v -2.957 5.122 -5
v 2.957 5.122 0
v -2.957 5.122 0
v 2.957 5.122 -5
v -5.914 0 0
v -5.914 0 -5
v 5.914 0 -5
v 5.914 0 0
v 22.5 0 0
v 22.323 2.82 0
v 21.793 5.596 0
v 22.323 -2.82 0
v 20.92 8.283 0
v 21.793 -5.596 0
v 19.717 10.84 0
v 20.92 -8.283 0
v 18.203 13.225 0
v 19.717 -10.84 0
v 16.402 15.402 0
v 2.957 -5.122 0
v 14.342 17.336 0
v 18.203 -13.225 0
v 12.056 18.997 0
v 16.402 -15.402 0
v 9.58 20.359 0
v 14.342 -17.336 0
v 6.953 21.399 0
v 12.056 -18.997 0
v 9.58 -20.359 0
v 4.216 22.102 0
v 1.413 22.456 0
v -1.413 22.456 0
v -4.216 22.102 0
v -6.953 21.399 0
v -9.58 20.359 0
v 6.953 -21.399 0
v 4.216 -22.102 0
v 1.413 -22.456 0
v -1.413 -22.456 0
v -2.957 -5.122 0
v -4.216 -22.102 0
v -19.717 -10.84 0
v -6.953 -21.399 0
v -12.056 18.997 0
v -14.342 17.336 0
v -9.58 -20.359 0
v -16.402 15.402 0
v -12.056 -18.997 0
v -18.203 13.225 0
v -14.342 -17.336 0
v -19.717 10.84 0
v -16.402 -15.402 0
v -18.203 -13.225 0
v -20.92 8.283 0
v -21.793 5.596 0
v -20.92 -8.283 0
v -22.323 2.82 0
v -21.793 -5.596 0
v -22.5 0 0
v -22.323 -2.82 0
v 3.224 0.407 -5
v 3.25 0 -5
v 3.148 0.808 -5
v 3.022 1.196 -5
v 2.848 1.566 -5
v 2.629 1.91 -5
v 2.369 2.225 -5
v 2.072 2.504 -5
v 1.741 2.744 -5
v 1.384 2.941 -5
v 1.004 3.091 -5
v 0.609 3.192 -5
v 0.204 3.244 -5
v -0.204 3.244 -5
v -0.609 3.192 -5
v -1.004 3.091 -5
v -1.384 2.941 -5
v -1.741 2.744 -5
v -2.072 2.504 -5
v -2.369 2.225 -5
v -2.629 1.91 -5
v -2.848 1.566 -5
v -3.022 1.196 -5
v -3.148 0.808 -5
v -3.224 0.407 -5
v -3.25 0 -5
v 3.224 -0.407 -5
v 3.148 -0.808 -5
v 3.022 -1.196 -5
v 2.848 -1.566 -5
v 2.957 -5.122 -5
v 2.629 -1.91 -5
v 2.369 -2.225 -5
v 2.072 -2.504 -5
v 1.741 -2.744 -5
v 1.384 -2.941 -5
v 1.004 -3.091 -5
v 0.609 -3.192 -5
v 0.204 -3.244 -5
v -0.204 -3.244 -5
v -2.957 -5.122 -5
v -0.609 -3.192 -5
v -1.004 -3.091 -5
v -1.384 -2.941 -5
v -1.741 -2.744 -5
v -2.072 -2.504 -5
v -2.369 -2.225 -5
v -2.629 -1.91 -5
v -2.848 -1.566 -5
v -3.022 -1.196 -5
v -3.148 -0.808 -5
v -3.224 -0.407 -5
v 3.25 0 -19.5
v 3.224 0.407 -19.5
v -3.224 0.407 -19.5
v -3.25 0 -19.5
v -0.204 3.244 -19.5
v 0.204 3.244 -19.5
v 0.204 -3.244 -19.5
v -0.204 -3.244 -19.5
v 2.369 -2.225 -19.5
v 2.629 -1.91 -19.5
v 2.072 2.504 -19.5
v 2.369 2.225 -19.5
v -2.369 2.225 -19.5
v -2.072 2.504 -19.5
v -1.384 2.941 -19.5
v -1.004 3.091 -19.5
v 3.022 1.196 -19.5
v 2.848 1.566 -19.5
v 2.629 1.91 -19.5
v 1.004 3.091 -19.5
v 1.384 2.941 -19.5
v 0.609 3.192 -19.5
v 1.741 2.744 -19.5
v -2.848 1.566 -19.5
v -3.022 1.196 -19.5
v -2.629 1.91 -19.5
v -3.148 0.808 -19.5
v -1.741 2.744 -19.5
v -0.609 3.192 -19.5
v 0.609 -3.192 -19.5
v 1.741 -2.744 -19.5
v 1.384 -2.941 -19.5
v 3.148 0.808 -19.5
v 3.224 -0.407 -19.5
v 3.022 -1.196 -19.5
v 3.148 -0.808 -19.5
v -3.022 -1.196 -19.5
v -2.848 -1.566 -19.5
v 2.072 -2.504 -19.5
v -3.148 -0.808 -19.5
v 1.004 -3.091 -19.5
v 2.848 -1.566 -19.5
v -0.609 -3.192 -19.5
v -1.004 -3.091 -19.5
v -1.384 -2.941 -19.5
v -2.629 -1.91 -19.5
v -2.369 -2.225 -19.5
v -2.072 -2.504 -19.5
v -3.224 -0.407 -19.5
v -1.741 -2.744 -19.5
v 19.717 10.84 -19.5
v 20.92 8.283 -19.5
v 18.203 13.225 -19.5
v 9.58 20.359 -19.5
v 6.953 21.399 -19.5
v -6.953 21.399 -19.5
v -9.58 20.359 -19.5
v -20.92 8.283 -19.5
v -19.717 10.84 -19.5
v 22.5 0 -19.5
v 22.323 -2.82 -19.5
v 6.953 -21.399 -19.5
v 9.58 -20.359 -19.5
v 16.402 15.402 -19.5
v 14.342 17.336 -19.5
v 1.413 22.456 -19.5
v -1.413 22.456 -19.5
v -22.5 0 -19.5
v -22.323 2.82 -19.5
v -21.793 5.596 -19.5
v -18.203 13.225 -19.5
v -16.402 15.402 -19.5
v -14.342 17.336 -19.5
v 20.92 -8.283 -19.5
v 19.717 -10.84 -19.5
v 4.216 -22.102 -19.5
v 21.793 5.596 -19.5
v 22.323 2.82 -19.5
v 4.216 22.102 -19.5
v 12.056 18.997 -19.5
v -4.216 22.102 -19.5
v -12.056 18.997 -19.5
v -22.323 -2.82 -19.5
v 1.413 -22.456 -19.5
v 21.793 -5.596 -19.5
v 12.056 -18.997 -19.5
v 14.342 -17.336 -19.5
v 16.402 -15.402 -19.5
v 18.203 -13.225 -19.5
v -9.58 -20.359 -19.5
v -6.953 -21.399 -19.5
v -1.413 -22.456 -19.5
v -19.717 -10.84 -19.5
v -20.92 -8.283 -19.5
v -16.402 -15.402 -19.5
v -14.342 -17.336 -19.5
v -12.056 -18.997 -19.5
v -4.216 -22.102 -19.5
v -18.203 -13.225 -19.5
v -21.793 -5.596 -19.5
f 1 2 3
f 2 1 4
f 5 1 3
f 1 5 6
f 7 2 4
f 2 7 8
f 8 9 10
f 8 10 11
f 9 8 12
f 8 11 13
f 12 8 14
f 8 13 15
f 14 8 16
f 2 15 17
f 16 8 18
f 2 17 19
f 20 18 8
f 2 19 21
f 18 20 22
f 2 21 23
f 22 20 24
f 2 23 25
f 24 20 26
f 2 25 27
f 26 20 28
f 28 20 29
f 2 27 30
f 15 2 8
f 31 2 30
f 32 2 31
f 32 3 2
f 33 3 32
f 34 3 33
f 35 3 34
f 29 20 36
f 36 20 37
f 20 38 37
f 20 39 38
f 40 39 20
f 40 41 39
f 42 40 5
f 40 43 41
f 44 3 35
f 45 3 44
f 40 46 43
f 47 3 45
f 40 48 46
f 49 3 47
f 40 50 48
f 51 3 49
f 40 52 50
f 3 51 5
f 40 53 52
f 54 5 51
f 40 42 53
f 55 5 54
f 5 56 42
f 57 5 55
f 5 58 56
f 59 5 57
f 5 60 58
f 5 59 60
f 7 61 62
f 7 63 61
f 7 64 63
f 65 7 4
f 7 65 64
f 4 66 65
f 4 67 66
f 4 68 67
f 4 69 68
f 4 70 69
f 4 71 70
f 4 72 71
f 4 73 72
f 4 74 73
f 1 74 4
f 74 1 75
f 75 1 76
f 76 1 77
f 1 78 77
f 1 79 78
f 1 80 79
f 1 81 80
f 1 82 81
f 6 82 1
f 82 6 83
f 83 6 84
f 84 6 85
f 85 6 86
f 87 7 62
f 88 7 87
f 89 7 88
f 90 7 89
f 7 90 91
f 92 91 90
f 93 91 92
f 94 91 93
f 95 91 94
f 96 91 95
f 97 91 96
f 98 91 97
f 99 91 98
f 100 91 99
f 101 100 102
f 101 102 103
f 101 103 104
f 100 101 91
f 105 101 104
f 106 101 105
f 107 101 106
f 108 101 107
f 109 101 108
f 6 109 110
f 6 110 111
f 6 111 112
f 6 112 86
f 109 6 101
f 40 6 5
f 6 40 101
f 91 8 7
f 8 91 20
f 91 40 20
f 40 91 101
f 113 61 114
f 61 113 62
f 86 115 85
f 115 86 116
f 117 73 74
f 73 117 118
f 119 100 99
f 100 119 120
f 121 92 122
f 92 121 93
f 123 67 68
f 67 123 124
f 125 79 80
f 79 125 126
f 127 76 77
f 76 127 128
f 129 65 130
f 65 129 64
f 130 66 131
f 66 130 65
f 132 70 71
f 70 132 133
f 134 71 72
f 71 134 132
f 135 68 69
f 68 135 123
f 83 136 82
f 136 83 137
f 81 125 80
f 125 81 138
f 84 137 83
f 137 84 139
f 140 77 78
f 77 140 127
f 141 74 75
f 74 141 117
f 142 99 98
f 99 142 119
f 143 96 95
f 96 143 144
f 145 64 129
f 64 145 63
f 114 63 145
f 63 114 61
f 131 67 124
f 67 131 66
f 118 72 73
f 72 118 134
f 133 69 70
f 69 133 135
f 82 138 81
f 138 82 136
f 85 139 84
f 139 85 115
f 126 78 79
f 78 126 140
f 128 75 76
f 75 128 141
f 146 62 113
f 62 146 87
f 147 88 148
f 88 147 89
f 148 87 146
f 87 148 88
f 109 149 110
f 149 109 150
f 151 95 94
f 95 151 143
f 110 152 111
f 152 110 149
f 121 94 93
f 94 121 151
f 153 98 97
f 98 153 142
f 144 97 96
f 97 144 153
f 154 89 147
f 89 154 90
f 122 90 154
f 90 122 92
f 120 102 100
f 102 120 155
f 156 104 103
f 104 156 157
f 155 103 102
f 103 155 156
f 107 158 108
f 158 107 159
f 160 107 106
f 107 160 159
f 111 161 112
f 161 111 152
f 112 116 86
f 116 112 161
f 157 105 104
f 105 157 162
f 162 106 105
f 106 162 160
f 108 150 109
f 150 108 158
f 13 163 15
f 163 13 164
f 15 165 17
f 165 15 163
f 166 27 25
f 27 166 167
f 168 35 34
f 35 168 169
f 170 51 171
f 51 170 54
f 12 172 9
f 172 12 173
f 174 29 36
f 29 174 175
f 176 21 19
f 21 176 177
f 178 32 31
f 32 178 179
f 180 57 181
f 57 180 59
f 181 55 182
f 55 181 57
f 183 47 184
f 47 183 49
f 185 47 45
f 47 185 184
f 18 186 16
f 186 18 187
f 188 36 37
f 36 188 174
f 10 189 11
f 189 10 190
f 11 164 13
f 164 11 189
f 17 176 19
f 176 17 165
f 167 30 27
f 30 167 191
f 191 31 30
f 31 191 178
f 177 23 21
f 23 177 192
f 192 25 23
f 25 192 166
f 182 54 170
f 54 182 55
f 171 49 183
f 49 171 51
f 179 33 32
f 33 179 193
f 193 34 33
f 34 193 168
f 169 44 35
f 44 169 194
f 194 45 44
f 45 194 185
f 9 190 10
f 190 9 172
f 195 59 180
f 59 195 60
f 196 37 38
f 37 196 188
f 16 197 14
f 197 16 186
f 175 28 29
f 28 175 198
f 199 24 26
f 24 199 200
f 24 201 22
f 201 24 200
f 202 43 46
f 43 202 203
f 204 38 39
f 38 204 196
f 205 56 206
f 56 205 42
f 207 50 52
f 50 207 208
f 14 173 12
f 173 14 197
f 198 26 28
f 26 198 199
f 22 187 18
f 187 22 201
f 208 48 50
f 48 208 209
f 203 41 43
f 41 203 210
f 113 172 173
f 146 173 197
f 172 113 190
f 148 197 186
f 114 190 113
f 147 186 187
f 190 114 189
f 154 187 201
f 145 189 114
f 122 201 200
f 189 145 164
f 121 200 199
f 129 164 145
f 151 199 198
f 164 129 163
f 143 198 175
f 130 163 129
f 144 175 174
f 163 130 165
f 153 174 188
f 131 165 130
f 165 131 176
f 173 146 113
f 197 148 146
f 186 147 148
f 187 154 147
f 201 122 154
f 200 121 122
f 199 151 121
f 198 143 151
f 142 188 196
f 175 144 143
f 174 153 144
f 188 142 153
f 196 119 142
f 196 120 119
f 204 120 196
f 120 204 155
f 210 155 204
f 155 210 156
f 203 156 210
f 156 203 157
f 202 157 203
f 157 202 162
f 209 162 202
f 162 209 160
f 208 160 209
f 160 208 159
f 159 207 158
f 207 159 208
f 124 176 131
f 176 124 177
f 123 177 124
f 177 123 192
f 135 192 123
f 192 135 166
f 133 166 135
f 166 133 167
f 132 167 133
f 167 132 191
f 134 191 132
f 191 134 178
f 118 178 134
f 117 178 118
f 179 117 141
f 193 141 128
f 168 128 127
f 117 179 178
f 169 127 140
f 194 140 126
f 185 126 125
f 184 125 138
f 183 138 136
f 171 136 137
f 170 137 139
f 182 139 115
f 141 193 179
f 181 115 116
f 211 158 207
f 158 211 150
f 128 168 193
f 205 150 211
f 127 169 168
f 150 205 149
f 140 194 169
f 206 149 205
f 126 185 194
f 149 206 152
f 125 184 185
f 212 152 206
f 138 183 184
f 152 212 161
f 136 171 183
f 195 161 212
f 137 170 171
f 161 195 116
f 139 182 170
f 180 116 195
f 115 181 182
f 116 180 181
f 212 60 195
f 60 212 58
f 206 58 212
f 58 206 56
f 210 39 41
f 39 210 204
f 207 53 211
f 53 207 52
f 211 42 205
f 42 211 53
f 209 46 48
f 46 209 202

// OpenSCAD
$fn = 50;

difference() {
	union() {
		translate(v = [0, 0, -19.5]) {
			cylinder(h = 19.5, r = 22.5);
		}
	}
	union() {
		translate(v = [0, 0, 0]) {
			rotate(a = [0, 0, 0]) {
				difference() {
					union() {
						translate(v = [0, 0, -5]) {
							linear_extrude(height = 5) {
								polygon(points = [[5.914249999999999, 0.0], [2.957125, 5.1218907443321156], [-2.9571249999999982, 5.1218907443321156], [-5.914249999999999, 7.242867331857232e-16], [-2.9571250000000022, -5.121890744332115], [2.9571249999999956, -5.121890744332118]]);
							}
						}
					}
					union();
				}
			}
		}
		#translate(v = [0, 0, -100.0]) {
			cylinder(h = 200, r = 3.25);
		}
	}
}
